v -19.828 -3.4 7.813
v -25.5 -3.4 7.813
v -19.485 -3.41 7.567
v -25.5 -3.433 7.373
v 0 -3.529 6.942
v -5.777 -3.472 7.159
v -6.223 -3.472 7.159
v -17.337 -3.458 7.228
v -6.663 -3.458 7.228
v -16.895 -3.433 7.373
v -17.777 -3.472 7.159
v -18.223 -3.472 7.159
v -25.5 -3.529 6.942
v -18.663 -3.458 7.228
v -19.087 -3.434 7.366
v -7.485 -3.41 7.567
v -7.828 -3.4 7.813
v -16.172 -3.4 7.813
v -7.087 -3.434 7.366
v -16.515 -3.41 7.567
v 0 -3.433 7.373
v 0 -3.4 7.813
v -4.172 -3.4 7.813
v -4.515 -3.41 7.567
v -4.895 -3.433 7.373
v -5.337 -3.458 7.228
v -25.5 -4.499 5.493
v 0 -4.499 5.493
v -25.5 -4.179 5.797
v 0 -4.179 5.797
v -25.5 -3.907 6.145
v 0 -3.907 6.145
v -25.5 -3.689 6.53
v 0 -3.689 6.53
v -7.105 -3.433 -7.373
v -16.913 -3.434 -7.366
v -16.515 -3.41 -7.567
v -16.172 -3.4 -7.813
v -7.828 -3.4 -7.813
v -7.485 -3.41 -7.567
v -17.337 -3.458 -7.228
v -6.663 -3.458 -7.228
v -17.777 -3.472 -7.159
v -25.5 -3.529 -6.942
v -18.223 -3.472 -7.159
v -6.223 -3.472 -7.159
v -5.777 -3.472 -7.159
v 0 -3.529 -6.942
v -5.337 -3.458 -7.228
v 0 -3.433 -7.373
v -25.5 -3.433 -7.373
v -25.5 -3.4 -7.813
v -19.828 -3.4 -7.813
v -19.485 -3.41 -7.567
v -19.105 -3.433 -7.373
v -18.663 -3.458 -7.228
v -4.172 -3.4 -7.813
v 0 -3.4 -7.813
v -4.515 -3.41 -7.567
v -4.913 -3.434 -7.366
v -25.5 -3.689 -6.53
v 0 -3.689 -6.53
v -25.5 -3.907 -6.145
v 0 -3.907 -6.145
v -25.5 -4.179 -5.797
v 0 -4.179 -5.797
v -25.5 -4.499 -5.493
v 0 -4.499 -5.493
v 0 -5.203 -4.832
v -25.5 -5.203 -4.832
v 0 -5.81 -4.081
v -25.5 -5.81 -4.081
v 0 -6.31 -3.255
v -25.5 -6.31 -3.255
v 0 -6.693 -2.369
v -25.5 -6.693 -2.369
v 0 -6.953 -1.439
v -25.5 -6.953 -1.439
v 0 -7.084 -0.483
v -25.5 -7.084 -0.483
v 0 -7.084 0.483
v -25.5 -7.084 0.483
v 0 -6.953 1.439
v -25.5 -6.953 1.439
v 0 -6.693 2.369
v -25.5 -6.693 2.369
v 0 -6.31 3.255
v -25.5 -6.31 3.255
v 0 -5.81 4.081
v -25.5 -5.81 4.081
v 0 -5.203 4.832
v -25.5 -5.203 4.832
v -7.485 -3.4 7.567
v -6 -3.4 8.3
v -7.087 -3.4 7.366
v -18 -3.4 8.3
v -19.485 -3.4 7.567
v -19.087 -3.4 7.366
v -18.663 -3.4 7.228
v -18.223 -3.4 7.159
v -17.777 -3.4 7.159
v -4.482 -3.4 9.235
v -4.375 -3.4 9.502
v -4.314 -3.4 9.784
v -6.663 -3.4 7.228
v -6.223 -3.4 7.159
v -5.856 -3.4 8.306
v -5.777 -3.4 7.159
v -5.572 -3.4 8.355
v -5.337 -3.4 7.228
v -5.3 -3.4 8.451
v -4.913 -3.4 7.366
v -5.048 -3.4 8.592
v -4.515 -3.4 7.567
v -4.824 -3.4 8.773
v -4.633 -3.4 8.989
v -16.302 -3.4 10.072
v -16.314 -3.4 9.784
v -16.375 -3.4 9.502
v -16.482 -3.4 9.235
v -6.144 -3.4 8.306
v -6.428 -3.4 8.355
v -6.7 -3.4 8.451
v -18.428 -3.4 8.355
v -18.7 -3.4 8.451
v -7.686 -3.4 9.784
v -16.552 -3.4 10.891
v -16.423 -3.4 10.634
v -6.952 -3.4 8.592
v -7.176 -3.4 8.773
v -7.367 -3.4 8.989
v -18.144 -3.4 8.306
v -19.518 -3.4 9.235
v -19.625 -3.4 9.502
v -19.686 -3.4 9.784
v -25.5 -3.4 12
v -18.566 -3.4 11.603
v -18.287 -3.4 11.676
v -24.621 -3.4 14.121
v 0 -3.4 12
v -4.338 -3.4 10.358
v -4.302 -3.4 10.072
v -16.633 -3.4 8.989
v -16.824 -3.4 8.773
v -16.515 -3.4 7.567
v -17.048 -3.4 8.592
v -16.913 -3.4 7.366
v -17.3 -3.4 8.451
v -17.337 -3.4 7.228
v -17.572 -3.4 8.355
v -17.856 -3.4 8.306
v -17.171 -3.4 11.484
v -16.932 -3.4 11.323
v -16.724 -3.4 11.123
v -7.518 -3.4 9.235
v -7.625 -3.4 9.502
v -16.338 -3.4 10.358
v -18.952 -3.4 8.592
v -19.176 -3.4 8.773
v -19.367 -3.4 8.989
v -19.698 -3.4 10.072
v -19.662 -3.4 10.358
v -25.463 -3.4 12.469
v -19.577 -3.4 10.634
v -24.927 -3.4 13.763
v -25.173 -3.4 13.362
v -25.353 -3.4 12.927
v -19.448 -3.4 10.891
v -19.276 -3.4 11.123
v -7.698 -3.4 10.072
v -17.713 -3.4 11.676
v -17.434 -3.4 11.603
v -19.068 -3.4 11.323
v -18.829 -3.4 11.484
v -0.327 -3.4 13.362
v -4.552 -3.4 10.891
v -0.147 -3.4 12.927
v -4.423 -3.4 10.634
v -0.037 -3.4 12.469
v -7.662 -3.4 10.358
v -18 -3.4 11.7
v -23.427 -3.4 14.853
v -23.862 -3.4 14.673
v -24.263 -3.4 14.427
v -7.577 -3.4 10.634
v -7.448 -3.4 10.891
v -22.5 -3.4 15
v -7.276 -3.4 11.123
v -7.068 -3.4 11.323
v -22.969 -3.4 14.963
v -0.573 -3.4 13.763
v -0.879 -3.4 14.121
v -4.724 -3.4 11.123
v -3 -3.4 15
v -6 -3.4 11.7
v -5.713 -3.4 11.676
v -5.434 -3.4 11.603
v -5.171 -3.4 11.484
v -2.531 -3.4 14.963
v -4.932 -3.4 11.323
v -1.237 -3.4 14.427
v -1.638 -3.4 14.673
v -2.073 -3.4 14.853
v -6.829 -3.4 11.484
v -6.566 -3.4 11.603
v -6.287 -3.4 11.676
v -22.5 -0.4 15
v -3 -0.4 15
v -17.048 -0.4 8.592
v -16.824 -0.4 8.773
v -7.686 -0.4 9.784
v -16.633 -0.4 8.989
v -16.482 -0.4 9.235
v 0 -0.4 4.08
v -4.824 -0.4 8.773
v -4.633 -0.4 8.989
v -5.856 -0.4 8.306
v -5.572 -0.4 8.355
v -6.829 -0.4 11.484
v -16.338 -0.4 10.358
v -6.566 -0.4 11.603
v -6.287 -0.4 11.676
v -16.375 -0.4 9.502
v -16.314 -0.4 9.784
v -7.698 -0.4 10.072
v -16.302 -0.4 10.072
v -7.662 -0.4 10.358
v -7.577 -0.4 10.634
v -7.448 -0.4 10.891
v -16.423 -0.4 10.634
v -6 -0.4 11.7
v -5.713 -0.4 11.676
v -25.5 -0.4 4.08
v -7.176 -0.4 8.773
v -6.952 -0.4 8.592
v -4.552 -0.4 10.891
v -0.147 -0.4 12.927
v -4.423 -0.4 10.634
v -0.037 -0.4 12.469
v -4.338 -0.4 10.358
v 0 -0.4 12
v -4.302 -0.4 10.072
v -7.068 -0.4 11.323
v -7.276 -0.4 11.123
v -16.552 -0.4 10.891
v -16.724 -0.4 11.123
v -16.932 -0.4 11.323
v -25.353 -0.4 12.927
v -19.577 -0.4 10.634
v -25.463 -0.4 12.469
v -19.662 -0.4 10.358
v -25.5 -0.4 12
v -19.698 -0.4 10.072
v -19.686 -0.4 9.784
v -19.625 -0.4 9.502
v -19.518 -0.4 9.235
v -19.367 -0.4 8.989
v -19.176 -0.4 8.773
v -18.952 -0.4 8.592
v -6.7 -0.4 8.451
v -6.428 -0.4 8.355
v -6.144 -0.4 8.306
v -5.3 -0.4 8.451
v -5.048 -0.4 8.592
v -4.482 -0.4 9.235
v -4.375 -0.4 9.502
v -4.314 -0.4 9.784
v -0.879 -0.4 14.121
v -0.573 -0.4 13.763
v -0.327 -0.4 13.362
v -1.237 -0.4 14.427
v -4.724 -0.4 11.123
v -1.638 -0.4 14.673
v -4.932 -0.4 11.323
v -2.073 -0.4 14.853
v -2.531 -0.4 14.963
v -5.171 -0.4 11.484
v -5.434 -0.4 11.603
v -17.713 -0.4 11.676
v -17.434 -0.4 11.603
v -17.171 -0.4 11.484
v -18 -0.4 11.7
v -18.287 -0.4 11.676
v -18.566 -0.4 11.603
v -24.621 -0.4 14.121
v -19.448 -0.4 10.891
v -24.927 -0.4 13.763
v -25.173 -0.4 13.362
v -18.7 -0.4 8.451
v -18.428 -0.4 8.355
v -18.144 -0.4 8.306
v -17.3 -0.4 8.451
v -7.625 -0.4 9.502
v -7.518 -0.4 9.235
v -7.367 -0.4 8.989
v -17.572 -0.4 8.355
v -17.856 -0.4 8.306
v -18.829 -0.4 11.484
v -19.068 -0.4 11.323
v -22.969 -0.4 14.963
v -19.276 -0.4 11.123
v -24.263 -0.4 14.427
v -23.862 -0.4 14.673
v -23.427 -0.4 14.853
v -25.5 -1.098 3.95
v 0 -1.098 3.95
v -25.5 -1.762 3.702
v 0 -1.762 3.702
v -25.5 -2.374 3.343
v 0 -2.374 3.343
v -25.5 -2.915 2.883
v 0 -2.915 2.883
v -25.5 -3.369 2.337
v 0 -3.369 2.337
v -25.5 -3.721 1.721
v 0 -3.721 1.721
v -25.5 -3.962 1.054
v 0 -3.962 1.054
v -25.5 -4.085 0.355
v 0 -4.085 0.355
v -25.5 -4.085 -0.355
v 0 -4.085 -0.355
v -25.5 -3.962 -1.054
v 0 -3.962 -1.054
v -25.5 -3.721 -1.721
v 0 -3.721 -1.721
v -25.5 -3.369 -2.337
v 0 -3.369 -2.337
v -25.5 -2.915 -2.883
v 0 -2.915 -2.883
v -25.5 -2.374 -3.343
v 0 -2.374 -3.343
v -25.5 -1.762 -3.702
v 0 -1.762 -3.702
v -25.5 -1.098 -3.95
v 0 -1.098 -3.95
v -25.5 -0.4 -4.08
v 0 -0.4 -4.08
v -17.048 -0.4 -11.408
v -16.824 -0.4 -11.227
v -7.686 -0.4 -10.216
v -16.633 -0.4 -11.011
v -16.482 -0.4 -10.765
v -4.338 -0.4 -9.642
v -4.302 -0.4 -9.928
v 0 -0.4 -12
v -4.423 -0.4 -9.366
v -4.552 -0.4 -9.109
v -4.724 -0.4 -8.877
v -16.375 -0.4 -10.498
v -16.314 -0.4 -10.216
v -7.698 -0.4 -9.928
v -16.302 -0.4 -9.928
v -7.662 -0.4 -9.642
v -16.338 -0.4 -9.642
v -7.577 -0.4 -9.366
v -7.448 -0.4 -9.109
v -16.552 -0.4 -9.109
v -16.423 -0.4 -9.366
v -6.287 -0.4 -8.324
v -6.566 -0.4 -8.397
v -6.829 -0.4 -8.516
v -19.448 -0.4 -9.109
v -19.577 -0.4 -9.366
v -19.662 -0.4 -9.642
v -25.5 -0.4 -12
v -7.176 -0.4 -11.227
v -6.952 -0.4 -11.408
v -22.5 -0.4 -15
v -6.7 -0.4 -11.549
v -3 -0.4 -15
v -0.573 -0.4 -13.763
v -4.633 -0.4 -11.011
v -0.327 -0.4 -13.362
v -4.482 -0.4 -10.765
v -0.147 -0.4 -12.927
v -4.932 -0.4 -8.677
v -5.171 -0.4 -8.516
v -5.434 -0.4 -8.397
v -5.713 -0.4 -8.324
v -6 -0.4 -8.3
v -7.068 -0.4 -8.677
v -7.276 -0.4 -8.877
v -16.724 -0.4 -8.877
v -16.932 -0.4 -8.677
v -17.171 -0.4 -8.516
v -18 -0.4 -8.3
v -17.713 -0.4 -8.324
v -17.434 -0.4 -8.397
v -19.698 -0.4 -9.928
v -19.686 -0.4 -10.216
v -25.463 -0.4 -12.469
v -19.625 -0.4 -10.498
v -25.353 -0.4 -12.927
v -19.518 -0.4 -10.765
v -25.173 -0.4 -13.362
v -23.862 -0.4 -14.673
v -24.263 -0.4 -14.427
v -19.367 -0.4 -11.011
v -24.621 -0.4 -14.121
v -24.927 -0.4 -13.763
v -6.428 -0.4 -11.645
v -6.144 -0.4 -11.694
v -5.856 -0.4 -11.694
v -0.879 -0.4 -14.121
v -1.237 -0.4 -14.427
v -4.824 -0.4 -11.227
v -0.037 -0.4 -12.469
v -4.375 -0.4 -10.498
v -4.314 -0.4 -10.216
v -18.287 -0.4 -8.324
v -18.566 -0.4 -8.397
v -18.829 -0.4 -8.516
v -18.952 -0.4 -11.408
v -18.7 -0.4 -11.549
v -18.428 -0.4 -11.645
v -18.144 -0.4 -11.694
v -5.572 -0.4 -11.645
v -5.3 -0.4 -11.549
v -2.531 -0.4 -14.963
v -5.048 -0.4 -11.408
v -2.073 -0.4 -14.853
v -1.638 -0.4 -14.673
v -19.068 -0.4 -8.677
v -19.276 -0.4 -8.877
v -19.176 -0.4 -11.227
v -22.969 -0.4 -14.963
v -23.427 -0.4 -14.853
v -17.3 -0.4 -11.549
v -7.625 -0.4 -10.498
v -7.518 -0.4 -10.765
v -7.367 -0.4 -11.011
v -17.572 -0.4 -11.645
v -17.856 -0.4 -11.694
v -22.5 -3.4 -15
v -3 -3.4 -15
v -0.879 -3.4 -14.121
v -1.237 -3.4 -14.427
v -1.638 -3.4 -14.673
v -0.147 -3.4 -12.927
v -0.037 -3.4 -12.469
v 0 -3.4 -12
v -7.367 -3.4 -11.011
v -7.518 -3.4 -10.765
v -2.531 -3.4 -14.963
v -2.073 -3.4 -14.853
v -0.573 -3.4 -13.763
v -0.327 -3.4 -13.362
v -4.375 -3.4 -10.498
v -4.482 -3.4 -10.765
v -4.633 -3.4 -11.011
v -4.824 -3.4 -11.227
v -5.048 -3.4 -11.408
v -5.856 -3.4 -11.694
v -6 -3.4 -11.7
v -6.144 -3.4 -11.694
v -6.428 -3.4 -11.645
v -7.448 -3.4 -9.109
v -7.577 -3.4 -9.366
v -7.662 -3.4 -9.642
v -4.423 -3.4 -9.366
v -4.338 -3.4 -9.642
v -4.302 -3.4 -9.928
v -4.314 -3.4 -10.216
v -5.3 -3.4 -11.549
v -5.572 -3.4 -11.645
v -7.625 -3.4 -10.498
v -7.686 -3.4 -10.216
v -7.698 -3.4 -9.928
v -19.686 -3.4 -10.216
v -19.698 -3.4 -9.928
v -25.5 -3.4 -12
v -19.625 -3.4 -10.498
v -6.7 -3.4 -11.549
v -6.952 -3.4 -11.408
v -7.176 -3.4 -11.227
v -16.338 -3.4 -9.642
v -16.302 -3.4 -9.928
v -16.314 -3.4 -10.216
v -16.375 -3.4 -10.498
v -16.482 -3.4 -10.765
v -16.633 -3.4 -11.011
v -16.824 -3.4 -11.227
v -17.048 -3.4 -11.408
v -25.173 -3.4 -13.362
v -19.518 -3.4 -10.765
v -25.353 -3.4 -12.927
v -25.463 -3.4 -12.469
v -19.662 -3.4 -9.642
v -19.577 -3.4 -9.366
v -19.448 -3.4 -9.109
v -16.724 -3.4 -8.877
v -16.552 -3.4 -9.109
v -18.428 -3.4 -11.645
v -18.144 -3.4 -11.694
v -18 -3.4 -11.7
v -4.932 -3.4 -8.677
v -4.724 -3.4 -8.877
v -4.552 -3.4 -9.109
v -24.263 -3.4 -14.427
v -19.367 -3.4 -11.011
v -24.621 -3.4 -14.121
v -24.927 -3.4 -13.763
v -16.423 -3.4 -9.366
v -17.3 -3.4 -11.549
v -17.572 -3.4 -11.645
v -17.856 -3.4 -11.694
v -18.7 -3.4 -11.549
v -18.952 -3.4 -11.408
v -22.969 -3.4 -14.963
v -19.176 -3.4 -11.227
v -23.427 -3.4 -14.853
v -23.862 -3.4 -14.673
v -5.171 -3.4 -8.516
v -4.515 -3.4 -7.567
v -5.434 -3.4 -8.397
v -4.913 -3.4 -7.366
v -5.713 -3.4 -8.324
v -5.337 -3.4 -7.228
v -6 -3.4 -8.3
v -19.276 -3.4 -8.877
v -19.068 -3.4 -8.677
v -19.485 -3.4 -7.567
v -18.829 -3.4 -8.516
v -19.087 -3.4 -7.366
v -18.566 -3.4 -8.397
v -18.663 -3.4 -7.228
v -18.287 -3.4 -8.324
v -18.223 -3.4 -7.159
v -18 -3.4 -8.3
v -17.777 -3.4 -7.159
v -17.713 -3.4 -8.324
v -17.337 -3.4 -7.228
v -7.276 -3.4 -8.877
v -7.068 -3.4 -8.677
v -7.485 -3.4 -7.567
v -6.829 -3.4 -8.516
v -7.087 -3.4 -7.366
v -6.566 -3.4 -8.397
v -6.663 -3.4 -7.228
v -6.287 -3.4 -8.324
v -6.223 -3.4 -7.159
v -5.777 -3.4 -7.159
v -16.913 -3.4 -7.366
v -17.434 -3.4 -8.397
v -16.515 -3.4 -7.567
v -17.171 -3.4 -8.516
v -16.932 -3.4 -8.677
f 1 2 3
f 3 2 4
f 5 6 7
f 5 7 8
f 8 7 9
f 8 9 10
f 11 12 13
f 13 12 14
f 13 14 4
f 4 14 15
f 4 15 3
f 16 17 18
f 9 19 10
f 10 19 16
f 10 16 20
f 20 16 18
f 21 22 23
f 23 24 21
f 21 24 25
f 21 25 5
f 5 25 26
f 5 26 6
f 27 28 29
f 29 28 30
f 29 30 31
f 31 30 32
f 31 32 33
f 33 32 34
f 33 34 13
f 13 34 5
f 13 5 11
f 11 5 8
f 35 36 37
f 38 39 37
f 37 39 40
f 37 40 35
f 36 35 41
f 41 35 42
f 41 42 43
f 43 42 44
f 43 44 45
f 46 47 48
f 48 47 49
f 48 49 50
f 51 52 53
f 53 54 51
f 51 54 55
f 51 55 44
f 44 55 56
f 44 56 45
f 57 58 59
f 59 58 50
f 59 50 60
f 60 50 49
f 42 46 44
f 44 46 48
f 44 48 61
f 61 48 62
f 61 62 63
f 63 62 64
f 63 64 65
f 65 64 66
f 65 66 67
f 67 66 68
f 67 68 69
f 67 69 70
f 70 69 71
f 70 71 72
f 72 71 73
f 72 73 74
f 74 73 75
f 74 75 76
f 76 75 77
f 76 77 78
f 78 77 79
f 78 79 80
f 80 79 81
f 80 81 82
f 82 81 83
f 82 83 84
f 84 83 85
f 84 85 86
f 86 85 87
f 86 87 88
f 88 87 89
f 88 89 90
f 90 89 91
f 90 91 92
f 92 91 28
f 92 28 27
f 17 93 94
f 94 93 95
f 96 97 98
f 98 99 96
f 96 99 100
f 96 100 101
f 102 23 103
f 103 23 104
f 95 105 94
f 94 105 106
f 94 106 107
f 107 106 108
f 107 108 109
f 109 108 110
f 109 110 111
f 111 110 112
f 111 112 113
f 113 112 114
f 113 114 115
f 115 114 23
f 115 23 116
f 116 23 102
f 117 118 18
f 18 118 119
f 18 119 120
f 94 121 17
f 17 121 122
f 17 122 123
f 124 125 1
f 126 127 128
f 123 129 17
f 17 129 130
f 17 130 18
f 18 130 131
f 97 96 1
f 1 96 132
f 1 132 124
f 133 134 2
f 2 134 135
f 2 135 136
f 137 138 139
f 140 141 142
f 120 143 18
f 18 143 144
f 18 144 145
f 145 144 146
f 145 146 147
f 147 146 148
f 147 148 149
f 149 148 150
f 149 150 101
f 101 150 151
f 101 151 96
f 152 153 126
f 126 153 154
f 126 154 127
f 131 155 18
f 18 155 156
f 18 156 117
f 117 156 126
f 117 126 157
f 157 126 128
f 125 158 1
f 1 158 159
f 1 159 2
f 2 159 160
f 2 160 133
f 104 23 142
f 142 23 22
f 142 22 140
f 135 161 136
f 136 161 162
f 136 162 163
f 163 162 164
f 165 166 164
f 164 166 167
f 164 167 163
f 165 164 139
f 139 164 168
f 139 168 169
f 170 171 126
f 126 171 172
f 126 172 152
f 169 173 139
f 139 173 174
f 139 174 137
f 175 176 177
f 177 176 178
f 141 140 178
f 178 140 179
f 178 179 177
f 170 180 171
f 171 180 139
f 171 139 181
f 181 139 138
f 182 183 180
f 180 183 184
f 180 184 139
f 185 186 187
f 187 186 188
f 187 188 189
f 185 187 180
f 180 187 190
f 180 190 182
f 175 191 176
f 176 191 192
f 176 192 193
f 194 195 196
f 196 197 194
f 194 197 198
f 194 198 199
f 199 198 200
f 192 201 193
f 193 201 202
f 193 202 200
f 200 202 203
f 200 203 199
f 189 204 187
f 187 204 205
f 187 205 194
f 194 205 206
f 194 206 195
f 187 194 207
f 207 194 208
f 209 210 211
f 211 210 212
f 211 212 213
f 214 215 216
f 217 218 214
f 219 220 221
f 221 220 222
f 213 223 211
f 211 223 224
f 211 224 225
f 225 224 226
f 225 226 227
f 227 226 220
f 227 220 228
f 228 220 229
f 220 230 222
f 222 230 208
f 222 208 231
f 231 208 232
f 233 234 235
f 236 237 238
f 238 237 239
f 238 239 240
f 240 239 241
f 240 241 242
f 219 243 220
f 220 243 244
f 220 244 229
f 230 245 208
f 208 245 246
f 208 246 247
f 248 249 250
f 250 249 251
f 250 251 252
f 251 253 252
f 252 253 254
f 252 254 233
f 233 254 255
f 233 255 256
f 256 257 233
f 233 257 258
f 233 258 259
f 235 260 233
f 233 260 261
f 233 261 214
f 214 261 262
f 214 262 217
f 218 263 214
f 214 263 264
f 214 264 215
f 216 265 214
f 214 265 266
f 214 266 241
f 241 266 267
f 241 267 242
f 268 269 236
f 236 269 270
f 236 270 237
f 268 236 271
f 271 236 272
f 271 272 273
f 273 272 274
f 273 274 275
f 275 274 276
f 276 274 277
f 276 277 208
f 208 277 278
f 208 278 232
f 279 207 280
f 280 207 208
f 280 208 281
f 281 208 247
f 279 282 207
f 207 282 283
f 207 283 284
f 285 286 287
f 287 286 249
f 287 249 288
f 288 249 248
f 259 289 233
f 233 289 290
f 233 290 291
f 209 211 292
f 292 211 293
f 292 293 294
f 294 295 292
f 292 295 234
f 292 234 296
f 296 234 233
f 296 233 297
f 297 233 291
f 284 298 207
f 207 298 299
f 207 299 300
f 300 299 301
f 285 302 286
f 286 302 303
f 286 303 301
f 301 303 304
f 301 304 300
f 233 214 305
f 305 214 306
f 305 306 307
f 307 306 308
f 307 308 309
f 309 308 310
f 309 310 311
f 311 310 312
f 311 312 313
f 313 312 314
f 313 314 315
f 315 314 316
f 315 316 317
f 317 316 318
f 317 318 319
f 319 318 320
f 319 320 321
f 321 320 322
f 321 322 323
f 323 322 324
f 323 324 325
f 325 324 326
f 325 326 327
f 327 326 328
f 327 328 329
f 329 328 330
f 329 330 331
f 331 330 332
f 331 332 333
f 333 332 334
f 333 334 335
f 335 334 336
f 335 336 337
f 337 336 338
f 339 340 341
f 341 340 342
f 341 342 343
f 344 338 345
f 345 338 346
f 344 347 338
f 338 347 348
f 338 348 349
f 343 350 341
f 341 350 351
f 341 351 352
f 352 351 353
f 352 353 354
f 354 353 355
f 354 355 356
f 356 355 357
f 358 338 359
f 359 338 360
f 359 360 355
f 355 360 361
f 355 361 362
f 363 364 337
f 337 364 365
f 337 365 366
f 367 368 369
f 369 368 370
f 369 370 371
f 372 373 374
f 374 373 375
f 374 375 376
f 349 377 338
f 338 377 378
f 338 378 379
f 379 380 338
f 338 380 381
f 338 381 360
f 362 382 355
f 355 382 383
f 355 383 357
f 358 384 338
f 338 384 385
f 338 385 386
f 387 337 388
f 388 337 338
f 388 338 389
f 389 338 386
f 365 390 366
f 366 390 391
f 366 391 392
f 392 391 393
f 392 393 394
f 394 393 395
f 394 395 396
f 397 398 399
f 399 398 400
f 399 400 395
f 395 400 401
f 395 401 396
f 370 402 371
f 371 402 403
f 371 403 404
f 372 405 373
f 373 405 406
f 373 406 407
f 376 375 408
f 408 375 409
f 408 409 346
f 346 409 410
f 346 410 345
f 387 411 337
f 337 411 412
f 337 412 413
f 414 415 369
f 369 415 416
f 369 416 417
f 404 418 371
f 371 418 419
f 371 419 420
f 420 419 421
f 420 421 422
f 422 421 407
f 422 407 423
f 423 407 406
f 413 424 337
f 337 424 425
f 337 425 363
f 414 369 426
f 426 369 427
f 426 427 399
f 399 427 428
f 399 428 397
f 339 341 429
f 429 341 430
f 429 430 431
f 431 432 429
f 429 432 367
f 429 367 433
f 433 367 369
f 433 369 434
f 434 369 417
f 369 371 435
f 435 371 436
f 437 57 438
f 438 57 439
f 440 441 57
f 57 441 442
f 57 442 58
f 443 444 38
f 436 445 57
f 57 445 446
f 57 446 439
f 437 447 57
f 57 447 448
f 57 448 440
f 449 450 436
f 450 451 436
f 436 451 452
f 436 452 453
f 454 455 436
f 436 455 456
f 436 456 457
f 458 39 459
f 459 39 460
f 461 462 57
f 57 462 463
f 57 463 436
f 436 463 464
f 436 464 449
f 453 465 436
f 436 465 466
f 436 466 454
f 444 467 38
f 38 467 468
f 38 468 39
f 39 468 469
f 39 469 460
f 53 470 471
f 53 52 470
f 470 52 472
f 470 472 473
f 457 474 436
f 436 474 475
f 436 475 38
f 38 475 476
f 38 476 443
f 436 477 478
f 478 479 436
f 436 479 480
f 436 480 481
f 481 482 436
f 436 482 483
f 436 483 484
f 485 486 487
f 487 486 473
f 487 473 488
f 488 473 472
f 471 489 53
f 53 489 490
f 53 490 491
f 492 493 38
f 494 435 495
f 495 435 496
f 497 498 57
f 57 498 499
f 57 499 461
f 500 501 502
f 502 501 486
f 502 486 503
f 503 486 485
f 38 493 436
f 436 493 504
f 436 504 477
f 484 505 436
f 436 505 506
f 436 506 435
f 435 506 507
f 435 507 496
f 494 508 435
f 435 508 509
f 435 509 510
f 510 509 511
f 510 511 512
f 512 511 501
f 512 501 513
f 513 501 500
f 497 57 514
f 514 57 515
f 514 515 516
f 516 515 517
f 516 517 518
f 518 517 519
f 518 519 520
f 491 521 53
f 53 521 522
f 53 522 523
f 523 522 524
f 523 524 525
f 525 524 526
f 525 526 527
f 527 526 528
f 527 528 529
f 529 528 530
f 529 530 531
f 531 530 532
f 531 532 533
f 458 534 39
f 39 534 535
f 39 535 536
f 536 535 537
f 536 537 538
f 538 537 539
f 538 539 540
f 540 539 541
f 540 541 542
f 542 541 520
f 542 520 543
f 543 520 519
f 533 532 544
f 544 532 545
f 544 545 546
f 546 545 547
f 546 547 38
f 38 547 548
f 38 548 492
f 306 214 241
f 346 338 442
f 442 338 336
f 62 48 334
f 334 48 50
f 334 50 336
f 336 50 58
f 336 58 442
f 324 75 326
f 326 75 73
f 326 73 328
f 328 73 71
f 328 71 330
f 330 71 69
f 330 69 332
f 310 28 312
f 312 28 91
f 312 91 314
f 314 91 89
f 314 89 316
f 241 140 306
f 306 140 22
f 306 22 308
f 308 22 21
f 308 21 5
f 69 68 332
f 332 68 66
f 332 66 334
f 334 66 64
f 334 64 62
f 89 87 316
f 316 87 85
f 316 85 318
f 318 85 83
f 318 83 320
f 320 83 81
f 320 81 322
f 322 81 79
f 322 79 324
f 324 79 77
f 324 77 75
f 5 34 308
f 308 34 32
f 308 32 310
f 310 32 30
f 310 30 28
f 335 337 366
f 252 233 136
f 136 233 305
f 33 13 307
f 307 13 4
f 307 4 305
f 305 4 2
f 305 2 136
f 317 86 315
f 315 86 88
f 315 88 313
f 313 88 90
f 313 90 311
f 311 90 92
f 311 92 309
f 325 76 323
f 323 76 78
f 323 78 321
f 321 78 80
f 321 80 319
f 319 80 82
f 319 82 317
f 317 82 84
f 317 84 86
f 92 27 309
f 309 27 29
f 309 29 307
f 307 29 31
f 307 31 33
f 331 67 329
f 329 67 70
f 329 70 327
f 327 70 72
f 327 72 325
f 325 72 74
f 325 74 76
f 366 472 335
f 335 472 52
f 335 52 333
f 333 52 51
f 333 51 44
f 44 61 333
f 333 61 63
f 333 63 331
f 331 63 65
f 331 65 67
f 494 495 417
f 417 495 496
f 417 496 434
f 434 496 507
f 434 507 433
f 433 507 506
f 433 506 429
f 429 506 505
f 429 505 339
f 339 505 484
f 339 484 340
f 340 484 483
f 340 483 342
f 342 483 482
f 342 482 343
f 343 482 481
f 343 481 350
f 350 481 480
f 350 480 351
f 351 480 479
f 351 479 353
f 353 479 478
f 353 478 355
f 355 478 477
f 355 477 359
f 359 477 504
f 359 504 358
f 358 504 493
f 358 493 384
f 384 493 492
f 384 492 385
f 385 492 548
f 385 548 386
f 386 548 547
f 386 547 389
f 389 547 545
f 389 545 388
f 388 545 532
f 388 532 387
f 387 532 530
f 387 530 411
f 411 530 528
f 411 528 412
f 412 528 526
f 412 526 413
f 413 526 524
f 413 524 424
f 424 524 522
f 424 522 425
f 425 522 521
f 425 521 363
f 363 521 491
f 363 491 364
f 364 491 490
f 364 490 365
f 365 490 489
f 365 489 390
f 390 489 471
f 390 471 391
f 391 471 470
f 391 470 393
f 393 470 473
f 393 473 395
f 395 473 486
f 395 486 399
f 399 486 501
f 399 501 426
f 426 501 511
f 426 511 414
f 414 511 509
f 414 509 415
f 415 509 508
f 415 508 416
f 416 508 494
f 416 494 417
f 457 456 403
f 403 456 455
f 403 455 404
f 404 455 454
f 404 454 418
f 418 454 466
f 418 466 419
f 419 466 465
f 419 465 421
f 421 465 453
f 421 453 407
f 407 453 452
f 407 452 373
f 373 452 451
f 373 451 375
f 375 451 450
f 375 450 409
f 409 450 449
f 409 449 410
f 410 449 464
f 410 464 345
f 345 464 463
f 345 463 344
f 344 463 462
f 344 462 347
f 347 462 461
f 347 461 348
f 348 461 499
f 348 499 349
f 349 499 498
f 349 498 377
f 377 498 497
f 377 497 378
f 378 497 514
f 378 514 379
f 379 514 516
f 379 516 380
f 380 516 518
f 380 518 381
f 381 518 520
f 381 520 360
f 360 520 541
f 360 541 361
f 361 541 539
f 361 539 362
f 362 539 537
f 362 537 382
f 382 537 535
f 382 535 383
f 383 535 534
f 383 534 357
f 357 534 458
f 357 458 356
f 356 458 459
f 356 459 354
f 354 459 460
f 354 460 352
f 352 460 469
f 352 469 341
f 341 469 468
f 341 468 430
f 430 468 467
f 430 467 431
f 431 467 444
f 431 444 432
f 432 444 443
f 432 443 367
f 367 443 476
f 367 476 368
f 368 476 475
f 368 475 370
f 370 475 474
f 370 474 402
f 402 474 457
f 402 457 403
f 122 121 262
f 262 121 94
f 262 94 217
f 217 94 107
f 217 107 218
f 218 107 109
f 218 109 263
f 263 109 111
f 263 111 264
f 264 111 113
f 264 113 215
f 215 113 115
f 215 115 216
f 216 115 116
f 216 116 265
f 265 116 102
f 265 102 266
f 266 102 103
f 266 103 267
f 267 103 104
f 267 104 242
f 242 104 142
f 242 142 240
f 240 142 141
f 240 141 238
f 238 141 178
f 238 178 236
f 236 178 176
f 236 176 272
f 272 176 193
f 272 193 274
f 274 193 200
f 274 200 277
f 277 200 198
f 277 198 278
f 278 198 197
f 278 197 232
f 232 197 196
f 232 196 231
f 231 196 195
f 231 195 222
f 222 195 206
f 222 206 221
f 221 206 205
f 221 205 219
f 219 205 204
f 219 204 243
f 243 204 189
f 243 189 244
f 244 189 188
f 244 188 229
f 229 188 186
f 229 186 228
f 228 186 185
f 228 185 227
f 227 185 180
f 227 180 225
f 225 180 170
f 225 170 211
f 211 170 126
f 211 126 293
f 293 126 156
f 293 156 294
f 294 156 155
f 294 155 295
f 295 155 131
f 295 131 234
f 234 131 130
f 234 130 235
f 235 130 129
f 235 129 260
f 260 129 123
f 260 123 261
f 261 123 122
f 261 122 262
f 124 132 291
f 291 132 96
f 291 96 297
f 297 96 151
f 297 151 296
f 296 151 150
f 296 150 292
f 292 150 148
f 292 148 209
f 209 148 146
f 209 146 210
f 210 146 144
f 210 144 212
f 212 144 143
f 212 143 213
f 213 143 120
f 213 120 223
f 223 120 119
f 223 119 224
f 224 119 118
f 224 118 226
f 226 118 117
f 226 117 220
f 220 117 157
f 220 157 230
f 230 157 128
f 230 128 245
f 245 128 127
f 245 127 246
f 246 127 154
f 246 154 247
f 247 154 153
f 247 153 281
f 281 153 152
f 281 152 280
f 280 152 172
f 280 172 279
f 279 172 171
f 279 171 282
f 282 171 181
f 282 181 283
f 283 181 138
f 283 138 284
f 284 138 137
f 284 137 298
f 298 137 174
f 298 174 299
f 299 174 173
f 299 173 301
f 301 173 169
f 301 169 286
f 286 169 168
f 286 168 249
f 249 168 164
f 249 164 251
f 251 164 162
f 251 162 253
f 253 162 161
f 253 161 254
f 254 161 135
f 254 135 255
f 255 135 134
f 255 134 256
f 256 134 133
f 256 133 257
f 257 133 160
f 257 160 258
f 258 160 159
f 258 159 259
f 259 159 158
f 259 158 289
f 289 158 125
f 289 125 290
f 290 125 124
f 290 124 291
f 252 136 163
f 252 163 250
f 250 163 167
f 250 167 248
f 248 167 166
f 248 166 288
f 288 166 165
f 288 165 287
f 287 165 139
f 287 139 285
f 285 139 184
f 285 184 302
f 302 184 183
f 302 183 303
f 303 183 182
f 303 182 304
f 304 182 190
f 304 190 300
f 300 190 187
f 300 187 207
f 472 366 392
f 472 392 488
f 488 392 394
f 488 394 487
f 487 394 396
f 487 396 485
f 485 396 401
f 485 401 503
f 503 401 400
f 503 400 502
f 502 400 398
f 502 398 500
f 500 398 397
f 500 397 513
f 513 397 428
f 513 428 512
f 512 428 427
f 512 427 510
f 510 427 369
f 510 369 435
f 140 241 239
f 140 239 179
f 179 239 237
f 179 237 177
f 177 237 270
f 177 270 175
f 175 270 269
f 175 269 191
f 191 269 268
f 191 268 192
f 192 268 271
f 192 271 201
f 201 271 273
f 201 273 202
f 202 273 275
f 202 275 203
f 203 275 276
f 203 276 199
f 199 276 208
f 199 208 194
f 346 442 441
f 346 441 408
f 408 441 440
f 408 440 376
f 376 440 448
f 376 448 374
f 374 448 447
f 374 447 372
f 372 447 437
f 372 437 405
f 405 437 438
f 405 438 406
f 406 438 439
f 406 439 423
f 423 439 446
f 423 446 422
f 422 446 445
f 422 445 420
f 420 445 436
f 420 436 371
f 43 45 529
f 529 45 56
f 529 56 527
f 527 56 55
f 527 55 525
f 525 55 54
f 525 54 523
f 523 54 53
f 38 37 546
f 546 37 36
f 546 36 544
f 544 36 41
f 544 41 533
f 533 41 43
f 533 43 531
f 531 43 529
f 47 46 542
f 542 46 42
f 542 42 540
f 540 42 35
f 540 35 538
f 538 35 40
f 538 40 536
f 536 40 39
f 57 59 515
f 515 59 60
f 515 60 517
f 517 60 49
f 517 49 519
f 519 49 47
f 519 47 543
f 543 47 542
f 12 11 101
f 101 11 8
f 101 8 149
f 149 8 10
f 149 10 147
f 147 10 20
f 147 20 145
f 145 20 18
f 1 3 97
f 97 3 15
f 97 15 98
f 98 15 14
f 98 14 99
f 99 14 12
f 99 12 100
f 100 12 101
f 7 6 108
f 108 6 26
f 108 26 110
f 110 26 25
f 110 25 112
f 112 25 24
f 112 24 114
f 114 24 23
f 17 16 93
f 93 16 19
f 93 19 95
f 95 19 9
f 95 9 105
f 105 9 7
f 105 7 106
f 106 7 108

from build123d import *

# Parameters (mm, degrees)
BOSS_EXTRUDE1_DEPTH = 25.5
SKETCH2_R           = 1.7
CUT_EXTRUDE1_DEPTH  = 31.42466105
FILLET1_R           = 3
SKETCH4_R           = 2.85
CUT_EXTRUDE2_DEPTH  = 30.815096847


with BuildPart() as part:
    # Sketch1 → Boss-Extrude1 (new body)
    with BuildSketch(Plane(origin=(0, 0, 0), x_dir=(0, 0, -1), z_dir=(1, 0, 0))):
        with BuildLine():
            Line((4.080441153, -0.4), (15, -0.4))
            Line((15, -0.4), (15, -3.4))
            Line((15, -3.4), (6.232976817, -3.4))
            ThreePointArc((6.232976817, -3.4), (0, -7.1), (-6.232976817, -3.4))
            Line((-6.232976817, -3.4), (-15, -3.4))
            Line((-15, -3.4), (-15, -0.4))
            Line((-15, -0.4), (-4.080441153, -0.4))
            ThreePointArc((-4.080441153, -0.4), (0, -4.1), (4.080441153, -0.4))
        make_face()
    extrude(amount=-BOSS_EXTRUDE1_DEPTH)

    # Sketch2 → Cut-Extrude1 (cut, through all)
    with BuildSketch(Plane(origin=(0, 0, 0), x_dir=(1, 0, 0), z_dir=(0, 1, 0))):
        with Locations(Location((-6, -10, 0), (0, 0, 270))):
            Circle(SKETCH2_R)
        with Locations(Location((-18, -10, 0), (0, 0, 270))):
            Circle(SKETCH2_R)
        with Locations(Location((-6, 10, 0), (0, 0, 270))):
            Circle(SKETCH2_R)
        with Locations(Location((-18, 10, 0), (0, 0, 270))):
            Circle(SKETCH2_R)
    extrude(amount=-CUT_EXTRUDE1_DEPTH, mode=Mode.SUBTRACT)

    # Fillet1
    fillet1_edges = [part.edges().sort_by_distance(p)[0] for p in [
        (0, -1.9, -15),
        (-12.75, -3.4, -6.232976817),
        (-25.5, -1.9, -15),
        (-25.5, -1.9, 15),
        (-12.75, -3.4, 6.232976817),
        (0, -1.9, 15),
    ]]
    fillet(fillet1_edges, radius=FILLET1_R)

    # Sketch4 → Cut-Extrude2 (cut, through all)
    with BuildSketch(Plane.XZ.offset(3.4)):
        with Locations((-18, -10)):
            Circle(SKETCH4_R)
        with Locations((-18, 10)):
            Circle(SKETCH4_R)
        with Locations((-6, 10)):
            Circle(SKETCH4_R)
        with Locations((-6, -10)):
            Circle(SKETCH4_R)
    extrude(amount=CUT_EXTRUDE2_DEPTH, mode=Mode.SUBTRACT)


solid = part.part
